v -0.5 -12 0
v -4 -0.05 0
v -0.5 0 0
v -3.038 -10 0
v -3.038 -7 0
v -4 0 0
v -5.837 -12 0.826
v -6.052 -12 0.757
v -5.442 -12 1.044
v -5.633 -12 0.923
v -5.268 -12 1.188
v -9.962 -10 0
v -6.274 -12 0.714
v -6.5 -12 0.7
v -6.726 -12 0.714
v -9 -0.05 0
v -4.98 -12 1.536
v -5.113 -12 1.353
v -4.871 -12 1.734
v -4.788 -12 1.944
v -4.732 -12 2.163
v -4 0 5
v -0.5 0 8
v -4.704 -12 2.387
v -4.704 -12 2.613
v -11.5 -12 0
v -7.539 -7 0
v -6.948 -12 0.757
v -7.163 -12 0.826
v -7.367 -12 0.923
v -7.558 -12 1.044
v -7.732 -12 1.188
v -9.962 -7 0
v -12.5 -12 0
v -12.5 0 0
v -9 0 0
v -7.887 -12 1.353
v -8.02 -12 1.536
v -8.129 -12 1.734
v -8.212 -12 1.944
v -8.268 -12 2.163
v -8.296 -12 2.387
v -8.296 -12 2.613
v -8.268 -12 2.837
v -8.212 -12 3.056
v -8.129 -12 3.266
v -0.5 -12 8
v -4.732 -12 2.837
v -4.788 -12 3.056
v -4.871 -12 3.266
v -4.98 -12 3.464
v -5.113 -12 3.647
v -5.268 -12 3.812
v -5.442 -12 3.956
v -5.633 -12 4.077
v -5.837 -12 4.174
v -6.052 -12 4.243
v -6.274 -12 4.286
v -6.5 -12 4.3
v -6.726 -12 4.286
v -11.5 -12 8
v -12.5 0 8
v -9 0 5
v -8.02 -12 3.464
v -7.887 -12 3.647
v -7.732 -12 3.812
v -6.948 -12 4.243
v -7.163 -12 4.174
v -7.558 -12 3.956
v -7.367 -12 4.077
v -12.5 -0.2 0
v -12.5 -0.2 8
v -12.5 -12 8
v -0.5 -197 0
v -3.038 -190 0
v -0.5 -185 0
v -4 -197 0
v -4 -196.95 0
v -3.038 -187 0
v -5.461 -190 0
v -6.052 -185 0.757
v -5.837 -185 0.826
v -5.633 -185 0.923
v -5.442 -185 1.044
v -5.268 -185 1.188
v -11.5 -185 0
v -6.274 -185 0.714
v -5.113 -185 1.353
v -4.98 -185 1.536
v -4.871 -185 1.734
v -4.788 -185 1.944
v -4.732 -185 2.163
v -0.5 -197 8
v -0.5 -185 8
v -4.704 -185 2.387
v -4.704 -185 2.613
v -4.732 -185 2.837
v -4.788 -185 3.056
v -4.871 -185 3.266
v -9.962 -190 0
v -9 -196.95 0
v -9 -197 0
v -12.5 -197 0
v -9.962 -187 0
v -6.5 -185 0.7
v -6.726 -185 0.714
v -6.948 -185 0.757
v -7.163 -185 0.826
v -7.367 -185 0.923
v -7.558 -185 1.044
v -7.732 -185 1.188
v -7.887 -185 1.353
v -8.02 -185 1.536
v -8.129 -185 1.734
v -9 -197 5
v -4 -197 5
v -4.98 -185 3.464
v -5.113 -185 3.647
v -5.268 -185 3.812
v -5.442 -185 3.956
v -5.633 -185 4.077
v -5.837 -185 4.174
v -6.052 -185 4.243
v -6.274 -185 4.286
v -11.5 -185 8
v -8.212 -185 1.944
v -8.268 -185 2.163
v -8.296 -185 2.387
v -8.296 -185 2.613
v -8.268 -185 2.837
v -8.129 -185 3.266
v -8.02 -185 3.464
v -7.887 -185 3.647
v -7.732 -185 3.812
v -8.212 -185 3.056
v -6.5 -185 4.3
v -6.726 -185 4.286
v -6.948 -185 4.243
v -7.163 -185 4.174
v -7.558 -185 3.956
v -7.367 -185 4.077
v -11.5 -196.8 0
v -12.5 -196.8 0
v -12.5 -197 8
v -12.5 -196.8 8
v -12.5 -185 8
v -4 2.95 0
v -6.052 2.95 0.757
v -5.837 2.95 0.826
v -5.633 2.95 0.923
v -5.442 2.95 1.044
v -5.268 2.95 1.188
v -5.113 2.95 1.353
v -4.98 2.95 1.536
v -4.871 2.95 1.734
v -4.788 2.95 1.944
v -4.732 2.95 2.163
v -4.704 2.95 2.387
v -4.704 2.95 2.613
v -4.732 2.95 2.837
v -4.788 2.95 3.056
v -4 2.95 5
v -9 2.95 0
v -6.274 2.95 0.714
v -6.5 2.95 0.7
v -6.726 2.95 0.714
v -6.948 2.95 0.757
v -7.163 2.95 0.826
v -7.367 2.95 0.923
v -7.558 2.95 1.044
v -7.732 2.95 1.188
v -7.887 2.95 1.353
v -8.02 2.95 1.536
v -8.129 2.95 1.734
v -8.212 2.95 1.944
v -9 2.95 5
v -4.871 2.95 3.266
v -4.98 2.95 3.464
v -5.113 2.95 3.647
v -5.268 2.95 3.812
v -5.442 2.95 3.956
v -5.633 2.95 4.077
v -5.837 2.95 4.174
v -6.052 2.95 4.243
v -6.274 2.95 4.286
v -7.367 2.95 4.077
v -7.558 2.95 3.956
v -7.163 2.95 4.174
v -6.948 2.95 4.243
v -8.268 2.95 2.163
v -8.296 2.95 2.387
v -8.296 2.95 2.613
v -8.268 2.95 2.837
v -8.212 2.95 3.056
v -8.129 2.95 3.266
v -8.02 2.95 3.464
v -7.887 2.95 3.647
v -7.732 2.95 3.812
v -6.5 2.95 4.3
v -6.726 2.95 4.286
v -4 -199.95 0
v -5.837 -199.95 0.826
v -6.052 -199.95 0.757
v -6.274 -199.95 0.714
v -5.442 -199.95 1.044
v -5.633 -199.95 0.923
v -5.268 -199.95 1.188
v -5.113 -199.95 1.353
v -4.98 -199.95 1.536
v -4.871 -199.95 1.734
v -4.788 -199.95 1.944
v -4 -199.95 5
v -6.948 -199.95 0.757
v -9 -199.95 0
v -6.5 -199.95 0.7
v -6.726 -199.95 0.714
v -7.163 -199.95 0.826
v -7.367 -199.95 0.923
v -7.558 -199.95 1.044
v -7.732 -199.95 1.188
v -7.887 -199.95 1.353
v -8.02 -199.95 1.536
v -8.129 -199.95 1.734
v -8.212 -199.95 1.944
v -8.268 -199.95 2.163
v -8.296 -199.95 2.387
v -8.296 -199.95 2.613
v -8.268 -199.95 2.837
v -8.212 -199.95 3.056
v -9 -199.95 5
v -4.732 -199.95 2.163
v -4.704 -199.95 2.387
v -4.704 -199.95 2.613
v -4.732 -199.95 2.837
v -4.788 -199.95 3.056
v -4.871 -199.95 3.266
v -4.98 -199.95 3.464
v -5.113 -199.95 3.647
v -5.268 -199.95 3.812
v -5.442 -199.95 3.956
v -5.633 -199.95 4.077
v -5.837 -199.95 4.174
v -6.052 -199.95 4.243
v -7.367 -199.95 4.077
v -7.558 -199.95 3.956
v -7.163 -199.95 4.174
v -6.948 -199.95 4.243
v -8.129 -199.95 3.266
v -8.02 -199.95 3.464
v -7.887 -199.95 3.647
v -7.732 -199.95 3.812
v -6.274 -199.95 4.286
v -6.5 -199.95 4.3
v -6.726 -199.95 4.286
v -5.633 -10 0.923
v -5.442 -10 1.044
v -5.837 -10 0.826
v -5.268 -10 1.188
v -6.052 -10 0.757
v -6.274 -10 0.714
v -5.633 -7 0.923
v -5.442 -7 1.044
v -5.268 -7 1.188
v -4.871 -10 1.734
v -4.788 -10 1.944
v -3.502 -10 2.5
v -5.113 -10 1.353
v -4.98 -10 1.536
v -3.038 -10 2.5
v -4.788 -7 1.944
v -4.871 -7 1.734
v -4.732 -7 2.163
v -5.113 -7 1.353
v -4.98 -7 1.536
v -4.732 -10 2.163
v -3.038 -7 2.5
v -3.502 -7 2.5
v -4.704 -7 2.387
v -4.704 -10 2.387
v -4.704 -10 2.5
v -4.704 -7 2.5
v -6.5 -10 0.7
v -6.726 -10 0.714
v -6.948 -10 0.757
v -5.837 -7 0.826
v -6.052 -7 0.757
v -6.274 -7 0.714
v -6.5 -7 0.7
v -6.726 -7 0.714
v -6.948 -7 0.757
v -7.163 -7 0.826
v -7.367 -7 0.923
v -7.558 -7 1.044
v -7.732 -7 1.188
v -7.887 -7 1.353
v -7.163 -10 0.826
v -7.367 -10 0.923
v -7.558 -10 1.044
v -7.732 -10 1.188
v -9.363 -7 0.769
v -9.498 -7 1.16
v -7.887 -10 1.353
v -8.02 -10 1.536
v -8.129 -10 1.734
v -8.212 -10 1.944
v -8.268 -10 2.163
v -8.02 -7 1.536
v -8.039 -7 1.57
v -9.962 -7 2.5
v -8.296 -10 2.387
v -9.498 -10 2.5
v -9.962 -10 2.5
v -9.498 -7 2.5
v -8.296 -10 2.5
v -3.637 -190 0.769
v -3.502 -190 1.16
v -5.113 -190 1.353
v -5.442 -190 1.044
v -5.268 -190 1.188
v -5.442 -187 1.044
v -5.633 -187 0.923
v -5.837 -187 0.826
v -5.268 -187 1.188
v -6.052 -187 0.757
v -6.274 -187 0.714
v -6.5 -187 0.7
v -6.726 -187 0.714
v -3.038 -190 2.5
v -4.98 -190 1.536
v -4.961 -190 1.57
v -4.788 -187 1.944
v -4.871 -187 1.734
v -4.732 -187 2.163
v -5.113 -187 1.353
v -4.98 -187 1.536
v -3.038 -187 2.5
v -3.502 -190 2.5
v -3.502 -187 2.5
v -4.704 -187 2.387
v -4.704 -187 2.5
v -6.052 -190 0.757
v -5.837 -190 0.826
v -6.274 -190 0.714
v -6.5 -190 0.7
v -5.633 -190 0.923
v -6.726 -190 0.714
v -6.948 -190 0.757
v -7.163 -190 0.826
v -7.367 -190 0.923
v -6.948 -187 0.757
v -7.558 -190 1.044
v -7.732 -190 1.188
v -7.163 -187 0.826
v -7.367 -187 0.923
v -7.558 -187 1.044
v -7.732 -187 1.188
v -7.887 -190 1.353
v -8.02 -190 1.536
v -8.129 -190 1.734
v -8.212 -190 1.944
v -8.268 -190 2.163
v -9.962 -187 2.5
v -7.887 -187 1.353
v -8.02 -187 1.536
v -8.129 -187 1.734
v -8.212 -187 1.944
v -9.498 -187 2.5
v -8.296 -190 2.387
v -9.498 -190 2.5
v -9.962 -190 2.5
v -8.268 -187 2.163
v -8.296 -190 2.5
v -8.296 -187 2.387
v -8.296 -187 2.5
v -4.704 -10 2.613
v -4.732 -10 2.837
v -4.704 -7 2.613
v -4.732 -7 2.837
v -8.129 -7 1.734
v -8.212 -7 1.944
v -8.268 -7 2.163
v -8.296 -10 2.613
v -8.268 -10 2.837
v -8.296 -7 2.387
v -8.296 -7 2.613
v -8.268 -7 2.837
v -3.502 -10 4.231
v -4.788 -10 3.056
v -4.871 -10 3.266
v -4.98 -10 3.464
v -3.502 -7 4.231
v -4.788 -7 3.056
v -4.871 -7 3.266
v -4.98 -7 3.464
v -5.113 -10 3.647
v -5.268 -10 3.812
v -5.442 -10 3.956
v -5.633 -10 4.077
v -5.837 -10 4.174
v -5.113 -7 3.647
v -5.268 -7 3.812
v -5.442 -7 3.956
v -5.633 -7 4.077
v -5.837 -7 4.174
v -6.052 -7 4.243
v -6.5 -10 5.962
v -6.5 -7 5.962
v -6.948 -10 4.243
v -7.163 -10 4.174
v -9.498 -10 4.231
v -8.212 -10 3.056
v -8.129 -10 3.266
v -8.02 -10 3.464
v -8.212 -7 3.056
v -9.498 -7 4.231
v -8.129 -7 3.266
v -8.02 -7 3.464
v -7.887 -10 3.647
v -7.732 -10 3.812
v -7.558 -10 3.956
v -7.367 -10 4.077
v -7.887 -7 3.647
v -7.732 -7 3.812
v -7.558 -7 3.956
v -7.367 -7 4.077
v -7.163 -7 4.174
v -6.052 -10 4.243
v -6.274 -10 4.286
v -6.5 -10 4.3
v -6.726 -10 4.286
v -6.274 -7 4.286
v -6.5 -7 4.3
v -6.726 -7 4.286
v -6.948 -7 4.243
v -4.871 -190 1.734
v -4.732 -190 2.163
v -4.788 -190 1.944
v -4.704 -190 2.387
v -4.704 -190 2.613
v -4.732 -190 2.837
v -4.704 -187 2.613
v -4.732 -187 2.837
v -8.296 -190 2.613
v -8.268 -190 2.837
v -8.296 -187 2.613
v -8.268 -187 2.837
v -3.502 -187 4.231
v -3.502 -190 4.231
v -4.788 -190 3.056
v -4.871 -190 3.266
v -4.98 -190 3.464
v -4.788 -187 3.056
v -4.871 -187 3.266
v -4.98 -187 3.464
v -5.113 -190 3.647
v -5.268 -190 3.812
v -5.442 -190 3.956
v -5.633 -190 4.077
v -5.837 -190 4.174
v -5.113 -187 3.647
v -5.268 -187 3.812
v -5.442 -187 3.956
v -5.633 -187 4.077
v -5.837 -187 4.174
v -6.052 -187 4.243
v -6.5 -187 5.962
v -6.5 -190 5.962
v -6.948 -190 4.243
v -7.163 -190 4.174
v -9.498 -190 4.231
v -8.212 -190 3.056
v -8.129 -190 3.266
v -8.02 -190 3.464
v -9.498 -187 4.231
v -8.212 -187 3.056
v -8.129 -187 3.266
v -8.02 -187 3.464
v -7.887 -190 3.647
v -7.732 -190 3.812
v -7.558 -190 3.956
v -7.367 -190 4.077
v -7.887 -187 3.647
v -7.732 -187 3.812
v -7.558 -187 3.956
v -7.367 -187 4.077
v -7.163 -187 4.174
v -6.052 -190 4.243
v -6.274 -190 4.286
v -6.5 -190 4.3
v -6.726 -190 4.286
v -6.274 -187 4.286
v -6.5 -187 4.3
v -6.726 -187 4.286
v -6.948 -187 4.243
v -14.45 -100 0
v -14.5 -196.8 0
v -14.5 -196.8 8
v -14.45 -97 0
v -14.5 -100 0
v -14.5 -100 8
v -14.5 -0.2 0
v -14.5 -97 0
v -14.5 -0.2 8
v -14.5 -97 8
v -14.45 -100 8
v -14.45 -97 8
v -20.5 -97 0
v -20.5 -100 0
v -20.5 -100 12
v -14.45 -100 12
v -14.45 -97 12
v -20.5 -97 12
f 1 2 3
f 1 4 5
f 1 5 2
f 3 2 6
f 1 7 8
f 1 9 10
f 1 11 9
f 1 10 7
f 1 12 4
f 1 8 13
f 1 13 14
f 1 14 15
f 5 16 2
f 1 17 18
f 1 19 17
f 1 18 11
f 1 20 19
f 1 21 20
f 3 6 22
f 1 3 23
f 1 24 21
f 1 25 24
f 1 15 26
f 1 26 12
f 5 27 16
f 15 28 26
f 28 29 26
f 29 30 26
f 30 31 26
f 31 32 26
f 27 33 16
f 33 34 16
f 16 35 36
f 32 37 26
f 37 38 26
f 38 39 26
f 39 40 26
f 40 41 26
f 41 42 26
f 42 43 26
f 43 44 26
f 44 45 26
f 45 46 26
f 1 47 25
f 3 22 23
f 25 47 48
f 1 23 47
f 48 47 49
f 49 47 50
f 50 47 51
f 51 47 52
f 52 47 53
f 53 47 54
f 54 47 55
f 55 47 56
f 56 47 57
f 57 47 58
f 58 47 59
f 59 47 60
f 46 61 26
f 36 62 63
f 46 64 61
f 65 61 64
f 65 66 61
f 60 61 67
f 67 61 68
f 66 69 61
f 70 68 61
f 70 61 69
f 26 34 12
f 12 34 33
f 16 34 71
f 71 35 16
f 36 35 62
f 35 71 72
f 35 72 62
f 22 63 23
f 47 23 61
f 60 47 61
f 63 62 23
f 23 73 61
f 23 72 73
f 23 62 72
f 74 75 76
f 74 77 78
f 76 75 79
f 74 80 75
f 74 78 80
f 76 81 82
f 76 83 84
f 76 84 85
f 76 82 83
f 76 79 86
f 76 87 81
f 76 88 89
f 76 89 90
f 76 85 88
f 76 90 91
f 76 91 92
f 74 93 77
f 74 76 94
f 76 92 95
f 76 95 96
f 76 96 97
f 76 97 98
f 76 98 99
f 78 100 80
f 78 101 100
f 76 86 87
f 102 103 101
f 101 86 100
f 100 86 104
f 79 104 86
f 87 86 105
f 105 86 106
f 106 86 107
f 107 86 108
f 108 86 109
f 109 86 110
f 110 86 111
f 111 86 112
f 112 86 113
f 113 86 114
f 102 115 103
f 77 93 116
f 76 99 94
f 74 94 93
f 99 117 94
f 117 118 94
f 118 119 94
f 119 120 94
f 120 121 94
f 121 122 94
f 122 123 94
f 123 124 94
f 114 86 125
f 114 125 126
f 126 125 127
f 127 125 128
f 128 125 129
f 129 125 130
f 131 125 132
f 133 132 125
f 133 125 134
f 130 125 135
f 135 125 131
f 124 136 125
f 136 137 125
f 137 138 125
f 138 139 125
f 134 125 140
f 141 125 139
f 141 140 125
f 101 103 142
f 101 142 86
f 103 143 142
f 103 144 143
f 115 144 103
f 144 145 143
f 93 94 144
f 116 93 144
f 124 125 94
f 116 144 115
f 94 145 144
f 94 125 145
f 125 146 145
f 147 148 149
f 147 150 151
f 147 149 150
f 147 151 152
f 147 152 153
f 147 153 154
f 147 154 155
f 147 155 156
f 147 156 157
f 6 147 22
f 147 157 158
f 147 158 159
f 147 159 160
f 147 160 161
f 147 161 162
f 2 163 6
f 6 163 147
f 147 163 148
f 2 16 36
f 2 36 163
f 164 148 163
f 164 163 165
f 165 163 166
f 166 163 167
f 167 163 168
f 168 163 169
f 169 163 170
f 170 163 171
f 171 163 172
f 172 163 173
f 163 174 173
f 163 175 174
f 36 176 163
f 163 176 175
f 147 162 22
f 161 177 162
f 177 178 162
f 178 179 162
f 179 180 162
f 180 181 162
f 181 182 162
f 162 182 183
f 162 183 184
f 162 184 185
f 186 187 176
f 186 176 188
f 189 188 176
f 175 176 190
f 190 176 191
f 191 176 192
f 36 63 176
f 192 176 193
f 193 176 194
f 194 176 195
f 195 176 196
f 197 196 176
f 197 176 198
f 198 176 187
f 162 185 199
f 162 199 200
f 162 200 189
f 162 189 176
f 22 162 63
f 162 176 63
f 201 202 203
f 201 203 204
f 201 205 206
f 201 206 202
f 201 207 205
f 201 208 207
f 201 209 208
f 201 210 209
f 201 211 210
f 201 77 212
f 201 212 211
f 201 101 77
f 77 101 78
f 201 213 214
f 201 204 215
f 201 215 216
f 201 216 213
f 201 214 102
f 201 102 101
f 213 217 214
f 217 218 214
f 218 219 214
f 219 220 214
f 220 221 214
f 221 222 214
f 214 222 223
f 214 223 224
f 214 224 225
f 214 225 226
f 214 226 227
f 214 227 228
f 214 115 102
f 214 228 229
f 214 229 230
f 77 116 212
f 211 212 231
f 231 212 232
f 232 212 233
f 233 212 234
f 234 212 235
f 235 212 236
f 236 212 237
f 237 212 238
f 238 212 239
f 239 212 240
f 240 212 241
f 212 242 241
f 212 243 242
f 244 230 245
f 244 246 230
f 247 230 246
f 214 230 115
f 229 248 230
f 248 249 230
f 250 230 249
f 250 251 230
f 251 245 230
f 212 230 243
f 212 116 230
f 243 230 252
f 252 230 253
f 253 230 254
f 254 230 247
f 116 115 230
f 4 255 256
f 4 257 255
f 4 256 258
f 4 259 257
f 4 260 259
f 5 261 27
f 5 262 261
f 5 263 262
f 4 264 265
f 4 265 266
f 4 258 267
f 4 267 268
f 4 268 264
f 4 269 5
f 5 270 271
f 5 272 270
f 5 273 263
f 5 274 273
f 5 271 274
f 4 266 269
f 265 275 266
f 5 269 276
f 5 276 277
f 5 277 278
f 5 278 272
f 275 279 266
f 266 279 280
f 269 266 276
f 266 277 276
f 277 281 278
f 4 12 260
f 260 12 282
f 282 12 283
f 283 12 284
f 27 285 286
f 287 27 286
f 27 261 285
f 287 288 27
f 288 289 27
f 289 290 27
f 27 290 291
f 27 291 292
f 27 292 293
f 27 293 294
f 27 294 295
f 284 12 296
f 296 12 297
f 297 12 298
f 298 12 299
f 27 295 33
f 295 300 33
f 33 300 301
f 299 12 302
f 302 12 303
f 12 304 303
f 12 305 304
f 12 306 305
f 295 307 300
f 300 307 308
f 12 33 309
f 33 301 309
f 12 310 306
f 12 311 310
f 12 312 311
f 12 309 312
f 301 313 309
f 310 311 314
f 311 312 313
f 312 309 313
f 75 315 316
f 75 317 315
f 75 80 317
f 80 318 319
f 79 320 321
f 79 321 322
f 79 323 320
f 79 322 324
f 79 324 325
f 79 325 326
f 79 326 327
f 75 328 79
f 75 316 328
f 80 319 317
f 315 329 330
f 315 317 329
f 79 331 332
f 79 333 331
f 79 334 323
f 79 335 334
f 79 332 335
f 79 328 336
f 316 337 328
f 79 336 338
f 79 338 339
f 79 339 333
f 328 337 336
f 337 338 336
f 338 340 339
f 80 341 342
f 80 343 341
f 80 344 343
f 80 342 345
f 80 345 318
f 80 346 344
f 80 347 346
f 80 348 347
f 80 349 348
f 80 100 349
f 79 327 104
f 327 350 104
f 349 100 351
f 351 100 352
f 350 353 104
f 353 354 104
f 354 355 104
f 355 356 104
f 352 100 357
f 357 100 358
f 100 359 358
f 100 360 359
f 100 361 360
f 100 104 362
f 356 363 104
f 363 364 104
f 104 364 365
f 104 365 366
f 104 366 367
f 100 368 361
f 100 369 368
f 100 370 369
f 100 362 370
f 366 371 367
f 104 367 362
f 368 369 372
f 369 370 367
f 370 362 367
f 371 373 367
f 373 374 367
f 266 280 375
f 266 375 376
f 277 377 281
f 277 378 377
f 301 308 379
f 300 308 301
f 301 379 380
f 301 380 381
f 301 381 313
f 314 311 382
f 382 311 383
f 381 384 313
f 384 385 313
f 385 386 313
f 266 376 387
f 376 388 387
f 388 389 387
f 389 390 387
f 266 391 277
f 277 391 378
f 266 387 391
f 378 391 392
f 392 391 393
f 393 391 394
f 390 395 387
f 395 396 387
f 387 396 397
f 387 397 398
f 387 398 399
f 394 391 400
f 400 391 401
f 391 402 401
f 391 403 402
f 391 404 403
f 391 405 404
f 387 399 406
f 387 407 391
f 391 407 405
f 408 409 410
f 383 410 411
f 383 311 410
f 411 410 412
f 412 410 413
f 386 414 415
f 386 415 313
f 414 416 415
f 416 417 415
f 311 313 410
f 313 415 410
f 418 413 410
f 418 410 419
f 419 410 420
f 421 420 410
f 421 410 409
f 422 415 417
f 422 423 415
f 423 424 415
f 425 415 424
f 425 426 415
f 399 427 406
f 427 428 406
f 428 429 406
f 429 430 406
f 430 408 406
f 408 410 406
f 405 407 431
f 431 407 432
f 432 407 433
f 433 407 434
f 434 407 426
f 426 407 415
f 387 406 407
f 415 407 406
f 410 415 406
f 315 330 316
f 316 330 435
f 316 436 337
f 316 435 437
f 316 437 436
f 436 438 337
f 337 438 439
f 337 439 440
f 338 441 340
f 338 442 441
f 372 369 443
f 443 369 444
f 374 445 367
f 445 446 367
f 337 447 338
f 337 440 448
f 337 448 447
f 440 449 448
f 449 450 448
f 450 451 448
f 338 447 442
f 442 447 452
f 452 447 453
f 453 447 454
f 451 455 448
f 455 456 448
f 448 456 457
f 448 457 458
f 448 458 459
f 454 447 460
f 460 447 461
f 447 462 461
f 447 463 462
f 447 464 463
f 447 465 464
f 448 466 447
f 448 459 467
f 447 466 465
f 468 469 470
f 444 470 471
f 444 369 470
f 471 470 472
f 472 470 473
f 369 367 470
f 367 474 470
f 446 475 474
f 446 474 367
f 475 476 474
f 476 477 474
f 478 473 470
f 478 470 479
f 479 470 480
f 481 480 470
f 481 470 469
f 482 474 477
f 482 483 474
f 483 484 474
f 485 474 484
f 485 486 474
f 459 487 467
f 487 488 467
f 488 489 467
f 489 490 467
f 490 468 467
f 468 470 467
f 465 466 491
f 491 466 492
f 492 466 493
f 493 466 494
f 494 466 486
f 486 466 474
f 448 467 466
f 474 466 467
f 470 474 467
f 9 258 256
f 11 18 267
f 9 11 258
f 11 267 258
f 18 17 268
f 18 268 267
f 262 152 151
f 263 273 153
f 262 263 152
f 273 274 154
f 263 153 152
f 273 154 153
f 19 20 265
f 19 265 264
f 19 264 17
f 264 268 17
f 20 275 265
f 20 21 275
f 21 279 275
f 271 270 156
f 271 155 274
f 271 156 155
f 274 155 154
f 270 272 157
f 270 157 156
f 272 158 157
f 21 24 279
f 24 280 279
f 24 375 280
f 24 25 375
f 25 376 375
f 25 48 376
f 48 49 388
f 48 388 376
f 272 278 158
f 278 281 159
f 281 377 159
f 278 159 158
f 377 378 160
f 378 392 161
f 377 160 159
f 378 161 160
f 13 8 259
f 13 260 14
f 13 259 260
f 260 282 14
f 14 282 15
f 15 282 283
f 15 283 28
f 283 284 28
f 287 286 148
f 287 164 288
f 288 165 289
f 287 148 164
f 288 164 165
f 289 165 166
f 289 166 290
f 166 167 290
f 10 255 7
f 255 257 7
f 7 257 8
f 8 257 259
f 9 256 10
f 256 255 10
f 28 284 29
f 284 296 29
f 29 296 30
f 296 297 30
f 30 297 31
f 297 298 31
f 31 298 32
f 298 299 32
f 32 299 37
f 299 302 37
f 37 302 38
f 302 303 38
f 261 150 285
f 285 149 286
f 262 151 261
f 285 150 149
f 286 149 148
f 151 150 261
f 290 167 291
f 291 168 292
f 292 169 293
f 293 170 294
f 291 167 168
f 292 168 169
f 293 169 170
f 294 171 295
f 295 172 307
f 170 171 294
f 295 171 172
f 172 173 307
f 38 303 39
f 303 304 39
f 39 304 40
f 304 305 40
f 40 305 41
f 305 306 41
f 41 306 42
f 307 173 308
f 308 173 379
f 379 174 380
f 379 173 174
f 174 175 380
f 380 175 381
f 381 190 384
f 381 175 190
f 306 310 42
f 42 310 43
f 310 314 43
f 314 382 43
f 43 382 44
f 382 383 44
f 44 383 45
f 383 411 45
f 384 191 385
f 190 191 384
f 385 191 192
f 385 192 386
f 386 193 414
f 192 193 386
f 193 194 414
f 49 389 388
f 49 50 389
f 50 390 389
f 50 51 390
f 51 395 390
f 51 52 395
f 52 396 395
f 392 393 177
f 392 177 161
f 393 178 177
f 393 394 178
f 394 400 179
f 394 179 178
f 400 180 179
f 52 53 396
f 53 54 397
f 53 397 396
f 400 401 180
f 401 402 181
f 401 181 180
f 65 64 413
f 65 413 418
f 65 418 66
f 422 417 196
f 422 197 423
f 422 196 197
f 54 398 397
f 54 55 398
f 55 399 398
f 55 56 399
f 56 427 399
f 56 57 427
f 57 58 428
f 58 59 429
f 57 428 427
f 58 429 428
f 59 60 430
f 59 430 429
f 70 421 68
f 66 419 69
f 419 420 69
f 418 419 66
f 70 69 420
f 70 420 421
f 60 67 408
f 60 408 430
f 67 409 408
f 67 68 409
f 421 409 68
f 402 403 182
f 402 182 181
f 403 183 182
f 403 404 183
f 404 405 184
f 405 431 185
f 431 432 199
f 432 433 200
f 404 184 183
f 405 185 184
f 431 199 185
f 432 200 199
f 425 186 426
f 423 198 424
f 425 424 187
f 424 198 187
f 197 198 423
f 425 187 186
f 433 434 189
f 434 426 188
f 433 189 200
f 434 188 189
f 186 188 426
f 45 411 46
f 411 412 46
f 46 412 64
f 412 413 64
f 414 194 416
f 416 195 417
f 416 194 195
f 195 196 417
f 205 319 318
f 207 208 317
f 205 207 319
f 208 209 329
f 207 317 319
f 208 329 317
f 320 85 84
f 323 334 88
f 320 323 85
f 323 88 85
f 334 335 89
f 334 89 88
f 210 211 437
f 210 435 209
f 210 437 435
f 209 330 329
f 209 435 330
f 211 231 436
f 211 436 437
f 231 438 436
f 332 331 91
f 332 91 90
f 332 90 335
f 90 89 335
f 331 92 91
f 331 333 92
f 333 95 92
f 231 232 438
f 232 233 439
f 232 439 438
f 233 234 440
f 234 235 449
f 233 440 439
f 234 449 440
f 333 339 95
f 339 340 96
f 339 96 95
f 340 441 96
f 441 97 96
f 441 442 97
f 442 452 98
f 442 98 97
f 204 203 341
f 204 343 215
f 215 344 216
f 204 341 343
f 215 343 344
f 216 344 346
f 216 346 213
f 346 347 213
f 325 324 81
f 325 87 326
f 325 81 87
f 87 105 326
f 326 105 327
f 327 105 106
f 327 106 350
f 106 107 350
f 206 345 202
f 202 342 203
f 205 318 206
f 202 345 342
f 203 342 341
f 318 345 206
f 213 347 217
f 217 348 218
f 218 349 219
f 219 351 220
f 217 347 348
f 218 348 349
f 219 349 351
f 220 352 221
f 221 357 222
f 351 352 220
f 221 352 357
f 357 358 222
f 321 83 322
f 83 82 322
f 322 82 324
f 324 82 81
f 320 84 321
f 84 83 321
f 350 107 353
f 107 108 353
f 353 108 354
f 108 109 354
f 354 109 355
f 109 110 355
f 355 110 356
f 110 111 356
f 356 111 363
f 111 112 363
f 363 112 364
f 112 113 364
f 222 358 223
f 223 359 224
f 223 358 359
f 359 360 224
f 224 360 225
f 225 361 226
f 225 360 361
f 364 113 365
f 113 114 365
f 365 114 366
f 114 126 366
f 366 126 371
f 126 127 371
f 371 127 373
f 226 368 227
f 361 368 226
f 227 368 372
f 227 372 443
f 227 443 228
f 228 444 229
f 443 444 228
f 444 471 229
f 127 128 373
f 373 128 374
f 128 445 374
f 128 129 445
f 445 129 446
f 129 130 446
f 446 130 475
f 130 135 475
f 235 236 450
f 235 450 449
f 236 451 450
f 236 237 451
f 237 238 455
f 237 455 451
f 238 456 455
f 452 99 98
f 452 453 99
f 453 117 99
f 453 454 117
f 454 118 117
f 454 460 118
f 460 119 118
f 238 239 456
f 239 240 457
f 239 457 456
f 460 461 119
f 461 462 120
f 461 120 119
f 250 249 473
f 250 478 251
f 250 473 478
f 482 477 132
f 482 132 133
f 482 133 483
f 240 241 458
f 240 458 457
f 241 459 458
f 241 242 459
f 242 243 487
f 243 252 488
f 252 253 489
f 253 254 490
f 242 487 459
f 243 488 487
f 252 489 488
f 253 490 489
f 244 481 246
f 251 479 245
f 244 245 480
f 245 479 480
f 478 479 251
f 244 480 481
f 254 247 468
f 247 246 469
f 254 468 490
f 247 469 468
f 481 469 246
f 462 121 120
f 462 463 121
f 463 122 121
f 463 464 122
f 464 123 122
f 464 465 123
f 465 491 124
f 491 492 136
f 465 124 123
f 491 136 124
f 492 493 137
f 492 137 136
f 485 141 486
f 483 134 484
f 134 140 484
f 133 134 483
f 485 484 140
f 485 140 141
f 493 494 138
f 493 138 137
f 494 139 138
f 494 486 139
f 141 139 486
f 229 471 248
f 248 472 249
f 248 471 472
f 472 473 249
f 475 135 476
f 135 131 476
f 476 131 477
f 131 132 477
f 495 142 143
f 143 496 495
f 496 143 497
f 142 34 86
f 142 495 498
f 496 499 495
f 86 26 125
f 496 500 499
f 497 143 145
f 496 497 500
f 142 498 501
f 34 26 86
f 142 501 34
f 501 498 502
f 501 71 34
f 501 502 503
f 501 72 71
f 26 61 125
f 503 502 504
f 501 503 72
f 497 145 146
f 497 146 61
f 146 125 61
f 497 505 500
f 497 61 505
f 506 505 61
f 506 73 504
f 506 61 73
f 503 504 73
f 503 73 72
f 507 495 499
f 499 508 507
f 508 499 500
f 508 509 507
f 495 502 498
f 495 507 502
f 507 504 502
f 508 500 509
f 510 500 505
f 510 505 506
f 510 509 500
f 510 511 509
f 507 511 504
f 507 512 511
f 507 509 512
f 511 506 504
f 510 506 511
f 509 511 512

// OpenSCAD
$fn = 50;

difference() {
	union() {
		translate(v = [0, 0, 0]) {
			rotate(a = [0, 0, 0]) {
				difference() {
					union() {
						translate(v = [0, 0, 2.5]) {
							rotate(a = [0, -90, 0]) {
								difference() {
									union() {
										translate(v = [0, 0, 0]) {
											rotate(a = [0, 0, 0]) {
												difference() {
													union() {
														translate(v = [-2.5, -12.0, 0.5]) {
															cube(size = [8.0, 12.0, 12.0]);
														}
														translate(v = [-2.5, -0.05, 4.0]) {
															cube(size = [5.0, 3.0, 5.0]);
														}
													}
													union() {
														translate(v = [0, -7.0, 6.5]) {
															rotate(a = [90, 0, 0]) {
																difference() {
																	union() {
																		translate(v = [-20.0, -3.4619999999999997, 0]) {
																			cube(size = [20, 6.9239999999999995, 3]);
																		}
																		linear_extrude(height = 3) {
																			polygon(points = [[3.4619999999999997, 0.0], [1.7310000000000003, 2.9981799479017264], [-1.7309999999999992, 2.9981799479017264], [-3.4619999999999997, 4.2397272186481365e-16], [-1.7310000000000014, -2.998179947901726], [1.7309999999999977, -2.9981799479017277]]);
																		}
																	}
																	union();
																}
															}
														}
														translate(v = [0, 3.0500000000000003, 6.5]) {
															rotate(a = [90, 0, 0]) {
																cylinder(h = 22.95, r = 1.8);
															}
														}
													}
												}
											}
										}
										translate(v = [0, -197.0, 13.0]) {
											rotate(a = [180, 0, 0]) {
												difference() {
													union() {
														translate(v = [-2.5, -12.0, 0.5]) {
															cube(size = [8.0, 12.0, 12.0]);
														}
														translate(v = [-2.5, -0.05, 4.0]) {
															cube(size = [5.0, 3.0, 5.0]);
														}
													}
													union() {
														translate(v = [0, -7.0, 6.5]) {
															rotate(a = [90, 0, 0]) {
																difference() {
																	union() {
																		translate(v = [-20.0, -3.4619999999999997, 0]) {
																			cube(size = [20, 6.9239999999999995, 3]);
																		}
																		linear_extrude(height = 3) {
																			polygon(points = [[3.4619999999999997, 0.0], [1.7310000000000003, 2.9981799479017264], [-1.7309999999999992, 2.9981799479017264], [-3.4619999999999997, 4.2397272186481365e-16], [-1.7310000000000014, -2.998179947901726], [1.7309999999999977, -2.9981799479017277]]);
																		}
																	}
																	union();
																}
															}
														}
														translate(v = [0, 3.0500000000000003, 6.5]) {
															rotate(a = [90, 0, 0]) {
																cylinder(h = 22.95, r = 1.8);
															}
														}
													}
												}
											}
										}
										translate(v = [-2.5, -196.8, 11.5]) {
											cube(size = [8.0, 196.6, 3.0]);
										}
										translate(v = [-2.5, -100.0, 14.45]) {
											cube(size = [12.0, 3.0, 6.05]);
										}
									}
									union();
								}
							}
						}
					}
					union();
				}
			}
		}
	}
	union();
}
